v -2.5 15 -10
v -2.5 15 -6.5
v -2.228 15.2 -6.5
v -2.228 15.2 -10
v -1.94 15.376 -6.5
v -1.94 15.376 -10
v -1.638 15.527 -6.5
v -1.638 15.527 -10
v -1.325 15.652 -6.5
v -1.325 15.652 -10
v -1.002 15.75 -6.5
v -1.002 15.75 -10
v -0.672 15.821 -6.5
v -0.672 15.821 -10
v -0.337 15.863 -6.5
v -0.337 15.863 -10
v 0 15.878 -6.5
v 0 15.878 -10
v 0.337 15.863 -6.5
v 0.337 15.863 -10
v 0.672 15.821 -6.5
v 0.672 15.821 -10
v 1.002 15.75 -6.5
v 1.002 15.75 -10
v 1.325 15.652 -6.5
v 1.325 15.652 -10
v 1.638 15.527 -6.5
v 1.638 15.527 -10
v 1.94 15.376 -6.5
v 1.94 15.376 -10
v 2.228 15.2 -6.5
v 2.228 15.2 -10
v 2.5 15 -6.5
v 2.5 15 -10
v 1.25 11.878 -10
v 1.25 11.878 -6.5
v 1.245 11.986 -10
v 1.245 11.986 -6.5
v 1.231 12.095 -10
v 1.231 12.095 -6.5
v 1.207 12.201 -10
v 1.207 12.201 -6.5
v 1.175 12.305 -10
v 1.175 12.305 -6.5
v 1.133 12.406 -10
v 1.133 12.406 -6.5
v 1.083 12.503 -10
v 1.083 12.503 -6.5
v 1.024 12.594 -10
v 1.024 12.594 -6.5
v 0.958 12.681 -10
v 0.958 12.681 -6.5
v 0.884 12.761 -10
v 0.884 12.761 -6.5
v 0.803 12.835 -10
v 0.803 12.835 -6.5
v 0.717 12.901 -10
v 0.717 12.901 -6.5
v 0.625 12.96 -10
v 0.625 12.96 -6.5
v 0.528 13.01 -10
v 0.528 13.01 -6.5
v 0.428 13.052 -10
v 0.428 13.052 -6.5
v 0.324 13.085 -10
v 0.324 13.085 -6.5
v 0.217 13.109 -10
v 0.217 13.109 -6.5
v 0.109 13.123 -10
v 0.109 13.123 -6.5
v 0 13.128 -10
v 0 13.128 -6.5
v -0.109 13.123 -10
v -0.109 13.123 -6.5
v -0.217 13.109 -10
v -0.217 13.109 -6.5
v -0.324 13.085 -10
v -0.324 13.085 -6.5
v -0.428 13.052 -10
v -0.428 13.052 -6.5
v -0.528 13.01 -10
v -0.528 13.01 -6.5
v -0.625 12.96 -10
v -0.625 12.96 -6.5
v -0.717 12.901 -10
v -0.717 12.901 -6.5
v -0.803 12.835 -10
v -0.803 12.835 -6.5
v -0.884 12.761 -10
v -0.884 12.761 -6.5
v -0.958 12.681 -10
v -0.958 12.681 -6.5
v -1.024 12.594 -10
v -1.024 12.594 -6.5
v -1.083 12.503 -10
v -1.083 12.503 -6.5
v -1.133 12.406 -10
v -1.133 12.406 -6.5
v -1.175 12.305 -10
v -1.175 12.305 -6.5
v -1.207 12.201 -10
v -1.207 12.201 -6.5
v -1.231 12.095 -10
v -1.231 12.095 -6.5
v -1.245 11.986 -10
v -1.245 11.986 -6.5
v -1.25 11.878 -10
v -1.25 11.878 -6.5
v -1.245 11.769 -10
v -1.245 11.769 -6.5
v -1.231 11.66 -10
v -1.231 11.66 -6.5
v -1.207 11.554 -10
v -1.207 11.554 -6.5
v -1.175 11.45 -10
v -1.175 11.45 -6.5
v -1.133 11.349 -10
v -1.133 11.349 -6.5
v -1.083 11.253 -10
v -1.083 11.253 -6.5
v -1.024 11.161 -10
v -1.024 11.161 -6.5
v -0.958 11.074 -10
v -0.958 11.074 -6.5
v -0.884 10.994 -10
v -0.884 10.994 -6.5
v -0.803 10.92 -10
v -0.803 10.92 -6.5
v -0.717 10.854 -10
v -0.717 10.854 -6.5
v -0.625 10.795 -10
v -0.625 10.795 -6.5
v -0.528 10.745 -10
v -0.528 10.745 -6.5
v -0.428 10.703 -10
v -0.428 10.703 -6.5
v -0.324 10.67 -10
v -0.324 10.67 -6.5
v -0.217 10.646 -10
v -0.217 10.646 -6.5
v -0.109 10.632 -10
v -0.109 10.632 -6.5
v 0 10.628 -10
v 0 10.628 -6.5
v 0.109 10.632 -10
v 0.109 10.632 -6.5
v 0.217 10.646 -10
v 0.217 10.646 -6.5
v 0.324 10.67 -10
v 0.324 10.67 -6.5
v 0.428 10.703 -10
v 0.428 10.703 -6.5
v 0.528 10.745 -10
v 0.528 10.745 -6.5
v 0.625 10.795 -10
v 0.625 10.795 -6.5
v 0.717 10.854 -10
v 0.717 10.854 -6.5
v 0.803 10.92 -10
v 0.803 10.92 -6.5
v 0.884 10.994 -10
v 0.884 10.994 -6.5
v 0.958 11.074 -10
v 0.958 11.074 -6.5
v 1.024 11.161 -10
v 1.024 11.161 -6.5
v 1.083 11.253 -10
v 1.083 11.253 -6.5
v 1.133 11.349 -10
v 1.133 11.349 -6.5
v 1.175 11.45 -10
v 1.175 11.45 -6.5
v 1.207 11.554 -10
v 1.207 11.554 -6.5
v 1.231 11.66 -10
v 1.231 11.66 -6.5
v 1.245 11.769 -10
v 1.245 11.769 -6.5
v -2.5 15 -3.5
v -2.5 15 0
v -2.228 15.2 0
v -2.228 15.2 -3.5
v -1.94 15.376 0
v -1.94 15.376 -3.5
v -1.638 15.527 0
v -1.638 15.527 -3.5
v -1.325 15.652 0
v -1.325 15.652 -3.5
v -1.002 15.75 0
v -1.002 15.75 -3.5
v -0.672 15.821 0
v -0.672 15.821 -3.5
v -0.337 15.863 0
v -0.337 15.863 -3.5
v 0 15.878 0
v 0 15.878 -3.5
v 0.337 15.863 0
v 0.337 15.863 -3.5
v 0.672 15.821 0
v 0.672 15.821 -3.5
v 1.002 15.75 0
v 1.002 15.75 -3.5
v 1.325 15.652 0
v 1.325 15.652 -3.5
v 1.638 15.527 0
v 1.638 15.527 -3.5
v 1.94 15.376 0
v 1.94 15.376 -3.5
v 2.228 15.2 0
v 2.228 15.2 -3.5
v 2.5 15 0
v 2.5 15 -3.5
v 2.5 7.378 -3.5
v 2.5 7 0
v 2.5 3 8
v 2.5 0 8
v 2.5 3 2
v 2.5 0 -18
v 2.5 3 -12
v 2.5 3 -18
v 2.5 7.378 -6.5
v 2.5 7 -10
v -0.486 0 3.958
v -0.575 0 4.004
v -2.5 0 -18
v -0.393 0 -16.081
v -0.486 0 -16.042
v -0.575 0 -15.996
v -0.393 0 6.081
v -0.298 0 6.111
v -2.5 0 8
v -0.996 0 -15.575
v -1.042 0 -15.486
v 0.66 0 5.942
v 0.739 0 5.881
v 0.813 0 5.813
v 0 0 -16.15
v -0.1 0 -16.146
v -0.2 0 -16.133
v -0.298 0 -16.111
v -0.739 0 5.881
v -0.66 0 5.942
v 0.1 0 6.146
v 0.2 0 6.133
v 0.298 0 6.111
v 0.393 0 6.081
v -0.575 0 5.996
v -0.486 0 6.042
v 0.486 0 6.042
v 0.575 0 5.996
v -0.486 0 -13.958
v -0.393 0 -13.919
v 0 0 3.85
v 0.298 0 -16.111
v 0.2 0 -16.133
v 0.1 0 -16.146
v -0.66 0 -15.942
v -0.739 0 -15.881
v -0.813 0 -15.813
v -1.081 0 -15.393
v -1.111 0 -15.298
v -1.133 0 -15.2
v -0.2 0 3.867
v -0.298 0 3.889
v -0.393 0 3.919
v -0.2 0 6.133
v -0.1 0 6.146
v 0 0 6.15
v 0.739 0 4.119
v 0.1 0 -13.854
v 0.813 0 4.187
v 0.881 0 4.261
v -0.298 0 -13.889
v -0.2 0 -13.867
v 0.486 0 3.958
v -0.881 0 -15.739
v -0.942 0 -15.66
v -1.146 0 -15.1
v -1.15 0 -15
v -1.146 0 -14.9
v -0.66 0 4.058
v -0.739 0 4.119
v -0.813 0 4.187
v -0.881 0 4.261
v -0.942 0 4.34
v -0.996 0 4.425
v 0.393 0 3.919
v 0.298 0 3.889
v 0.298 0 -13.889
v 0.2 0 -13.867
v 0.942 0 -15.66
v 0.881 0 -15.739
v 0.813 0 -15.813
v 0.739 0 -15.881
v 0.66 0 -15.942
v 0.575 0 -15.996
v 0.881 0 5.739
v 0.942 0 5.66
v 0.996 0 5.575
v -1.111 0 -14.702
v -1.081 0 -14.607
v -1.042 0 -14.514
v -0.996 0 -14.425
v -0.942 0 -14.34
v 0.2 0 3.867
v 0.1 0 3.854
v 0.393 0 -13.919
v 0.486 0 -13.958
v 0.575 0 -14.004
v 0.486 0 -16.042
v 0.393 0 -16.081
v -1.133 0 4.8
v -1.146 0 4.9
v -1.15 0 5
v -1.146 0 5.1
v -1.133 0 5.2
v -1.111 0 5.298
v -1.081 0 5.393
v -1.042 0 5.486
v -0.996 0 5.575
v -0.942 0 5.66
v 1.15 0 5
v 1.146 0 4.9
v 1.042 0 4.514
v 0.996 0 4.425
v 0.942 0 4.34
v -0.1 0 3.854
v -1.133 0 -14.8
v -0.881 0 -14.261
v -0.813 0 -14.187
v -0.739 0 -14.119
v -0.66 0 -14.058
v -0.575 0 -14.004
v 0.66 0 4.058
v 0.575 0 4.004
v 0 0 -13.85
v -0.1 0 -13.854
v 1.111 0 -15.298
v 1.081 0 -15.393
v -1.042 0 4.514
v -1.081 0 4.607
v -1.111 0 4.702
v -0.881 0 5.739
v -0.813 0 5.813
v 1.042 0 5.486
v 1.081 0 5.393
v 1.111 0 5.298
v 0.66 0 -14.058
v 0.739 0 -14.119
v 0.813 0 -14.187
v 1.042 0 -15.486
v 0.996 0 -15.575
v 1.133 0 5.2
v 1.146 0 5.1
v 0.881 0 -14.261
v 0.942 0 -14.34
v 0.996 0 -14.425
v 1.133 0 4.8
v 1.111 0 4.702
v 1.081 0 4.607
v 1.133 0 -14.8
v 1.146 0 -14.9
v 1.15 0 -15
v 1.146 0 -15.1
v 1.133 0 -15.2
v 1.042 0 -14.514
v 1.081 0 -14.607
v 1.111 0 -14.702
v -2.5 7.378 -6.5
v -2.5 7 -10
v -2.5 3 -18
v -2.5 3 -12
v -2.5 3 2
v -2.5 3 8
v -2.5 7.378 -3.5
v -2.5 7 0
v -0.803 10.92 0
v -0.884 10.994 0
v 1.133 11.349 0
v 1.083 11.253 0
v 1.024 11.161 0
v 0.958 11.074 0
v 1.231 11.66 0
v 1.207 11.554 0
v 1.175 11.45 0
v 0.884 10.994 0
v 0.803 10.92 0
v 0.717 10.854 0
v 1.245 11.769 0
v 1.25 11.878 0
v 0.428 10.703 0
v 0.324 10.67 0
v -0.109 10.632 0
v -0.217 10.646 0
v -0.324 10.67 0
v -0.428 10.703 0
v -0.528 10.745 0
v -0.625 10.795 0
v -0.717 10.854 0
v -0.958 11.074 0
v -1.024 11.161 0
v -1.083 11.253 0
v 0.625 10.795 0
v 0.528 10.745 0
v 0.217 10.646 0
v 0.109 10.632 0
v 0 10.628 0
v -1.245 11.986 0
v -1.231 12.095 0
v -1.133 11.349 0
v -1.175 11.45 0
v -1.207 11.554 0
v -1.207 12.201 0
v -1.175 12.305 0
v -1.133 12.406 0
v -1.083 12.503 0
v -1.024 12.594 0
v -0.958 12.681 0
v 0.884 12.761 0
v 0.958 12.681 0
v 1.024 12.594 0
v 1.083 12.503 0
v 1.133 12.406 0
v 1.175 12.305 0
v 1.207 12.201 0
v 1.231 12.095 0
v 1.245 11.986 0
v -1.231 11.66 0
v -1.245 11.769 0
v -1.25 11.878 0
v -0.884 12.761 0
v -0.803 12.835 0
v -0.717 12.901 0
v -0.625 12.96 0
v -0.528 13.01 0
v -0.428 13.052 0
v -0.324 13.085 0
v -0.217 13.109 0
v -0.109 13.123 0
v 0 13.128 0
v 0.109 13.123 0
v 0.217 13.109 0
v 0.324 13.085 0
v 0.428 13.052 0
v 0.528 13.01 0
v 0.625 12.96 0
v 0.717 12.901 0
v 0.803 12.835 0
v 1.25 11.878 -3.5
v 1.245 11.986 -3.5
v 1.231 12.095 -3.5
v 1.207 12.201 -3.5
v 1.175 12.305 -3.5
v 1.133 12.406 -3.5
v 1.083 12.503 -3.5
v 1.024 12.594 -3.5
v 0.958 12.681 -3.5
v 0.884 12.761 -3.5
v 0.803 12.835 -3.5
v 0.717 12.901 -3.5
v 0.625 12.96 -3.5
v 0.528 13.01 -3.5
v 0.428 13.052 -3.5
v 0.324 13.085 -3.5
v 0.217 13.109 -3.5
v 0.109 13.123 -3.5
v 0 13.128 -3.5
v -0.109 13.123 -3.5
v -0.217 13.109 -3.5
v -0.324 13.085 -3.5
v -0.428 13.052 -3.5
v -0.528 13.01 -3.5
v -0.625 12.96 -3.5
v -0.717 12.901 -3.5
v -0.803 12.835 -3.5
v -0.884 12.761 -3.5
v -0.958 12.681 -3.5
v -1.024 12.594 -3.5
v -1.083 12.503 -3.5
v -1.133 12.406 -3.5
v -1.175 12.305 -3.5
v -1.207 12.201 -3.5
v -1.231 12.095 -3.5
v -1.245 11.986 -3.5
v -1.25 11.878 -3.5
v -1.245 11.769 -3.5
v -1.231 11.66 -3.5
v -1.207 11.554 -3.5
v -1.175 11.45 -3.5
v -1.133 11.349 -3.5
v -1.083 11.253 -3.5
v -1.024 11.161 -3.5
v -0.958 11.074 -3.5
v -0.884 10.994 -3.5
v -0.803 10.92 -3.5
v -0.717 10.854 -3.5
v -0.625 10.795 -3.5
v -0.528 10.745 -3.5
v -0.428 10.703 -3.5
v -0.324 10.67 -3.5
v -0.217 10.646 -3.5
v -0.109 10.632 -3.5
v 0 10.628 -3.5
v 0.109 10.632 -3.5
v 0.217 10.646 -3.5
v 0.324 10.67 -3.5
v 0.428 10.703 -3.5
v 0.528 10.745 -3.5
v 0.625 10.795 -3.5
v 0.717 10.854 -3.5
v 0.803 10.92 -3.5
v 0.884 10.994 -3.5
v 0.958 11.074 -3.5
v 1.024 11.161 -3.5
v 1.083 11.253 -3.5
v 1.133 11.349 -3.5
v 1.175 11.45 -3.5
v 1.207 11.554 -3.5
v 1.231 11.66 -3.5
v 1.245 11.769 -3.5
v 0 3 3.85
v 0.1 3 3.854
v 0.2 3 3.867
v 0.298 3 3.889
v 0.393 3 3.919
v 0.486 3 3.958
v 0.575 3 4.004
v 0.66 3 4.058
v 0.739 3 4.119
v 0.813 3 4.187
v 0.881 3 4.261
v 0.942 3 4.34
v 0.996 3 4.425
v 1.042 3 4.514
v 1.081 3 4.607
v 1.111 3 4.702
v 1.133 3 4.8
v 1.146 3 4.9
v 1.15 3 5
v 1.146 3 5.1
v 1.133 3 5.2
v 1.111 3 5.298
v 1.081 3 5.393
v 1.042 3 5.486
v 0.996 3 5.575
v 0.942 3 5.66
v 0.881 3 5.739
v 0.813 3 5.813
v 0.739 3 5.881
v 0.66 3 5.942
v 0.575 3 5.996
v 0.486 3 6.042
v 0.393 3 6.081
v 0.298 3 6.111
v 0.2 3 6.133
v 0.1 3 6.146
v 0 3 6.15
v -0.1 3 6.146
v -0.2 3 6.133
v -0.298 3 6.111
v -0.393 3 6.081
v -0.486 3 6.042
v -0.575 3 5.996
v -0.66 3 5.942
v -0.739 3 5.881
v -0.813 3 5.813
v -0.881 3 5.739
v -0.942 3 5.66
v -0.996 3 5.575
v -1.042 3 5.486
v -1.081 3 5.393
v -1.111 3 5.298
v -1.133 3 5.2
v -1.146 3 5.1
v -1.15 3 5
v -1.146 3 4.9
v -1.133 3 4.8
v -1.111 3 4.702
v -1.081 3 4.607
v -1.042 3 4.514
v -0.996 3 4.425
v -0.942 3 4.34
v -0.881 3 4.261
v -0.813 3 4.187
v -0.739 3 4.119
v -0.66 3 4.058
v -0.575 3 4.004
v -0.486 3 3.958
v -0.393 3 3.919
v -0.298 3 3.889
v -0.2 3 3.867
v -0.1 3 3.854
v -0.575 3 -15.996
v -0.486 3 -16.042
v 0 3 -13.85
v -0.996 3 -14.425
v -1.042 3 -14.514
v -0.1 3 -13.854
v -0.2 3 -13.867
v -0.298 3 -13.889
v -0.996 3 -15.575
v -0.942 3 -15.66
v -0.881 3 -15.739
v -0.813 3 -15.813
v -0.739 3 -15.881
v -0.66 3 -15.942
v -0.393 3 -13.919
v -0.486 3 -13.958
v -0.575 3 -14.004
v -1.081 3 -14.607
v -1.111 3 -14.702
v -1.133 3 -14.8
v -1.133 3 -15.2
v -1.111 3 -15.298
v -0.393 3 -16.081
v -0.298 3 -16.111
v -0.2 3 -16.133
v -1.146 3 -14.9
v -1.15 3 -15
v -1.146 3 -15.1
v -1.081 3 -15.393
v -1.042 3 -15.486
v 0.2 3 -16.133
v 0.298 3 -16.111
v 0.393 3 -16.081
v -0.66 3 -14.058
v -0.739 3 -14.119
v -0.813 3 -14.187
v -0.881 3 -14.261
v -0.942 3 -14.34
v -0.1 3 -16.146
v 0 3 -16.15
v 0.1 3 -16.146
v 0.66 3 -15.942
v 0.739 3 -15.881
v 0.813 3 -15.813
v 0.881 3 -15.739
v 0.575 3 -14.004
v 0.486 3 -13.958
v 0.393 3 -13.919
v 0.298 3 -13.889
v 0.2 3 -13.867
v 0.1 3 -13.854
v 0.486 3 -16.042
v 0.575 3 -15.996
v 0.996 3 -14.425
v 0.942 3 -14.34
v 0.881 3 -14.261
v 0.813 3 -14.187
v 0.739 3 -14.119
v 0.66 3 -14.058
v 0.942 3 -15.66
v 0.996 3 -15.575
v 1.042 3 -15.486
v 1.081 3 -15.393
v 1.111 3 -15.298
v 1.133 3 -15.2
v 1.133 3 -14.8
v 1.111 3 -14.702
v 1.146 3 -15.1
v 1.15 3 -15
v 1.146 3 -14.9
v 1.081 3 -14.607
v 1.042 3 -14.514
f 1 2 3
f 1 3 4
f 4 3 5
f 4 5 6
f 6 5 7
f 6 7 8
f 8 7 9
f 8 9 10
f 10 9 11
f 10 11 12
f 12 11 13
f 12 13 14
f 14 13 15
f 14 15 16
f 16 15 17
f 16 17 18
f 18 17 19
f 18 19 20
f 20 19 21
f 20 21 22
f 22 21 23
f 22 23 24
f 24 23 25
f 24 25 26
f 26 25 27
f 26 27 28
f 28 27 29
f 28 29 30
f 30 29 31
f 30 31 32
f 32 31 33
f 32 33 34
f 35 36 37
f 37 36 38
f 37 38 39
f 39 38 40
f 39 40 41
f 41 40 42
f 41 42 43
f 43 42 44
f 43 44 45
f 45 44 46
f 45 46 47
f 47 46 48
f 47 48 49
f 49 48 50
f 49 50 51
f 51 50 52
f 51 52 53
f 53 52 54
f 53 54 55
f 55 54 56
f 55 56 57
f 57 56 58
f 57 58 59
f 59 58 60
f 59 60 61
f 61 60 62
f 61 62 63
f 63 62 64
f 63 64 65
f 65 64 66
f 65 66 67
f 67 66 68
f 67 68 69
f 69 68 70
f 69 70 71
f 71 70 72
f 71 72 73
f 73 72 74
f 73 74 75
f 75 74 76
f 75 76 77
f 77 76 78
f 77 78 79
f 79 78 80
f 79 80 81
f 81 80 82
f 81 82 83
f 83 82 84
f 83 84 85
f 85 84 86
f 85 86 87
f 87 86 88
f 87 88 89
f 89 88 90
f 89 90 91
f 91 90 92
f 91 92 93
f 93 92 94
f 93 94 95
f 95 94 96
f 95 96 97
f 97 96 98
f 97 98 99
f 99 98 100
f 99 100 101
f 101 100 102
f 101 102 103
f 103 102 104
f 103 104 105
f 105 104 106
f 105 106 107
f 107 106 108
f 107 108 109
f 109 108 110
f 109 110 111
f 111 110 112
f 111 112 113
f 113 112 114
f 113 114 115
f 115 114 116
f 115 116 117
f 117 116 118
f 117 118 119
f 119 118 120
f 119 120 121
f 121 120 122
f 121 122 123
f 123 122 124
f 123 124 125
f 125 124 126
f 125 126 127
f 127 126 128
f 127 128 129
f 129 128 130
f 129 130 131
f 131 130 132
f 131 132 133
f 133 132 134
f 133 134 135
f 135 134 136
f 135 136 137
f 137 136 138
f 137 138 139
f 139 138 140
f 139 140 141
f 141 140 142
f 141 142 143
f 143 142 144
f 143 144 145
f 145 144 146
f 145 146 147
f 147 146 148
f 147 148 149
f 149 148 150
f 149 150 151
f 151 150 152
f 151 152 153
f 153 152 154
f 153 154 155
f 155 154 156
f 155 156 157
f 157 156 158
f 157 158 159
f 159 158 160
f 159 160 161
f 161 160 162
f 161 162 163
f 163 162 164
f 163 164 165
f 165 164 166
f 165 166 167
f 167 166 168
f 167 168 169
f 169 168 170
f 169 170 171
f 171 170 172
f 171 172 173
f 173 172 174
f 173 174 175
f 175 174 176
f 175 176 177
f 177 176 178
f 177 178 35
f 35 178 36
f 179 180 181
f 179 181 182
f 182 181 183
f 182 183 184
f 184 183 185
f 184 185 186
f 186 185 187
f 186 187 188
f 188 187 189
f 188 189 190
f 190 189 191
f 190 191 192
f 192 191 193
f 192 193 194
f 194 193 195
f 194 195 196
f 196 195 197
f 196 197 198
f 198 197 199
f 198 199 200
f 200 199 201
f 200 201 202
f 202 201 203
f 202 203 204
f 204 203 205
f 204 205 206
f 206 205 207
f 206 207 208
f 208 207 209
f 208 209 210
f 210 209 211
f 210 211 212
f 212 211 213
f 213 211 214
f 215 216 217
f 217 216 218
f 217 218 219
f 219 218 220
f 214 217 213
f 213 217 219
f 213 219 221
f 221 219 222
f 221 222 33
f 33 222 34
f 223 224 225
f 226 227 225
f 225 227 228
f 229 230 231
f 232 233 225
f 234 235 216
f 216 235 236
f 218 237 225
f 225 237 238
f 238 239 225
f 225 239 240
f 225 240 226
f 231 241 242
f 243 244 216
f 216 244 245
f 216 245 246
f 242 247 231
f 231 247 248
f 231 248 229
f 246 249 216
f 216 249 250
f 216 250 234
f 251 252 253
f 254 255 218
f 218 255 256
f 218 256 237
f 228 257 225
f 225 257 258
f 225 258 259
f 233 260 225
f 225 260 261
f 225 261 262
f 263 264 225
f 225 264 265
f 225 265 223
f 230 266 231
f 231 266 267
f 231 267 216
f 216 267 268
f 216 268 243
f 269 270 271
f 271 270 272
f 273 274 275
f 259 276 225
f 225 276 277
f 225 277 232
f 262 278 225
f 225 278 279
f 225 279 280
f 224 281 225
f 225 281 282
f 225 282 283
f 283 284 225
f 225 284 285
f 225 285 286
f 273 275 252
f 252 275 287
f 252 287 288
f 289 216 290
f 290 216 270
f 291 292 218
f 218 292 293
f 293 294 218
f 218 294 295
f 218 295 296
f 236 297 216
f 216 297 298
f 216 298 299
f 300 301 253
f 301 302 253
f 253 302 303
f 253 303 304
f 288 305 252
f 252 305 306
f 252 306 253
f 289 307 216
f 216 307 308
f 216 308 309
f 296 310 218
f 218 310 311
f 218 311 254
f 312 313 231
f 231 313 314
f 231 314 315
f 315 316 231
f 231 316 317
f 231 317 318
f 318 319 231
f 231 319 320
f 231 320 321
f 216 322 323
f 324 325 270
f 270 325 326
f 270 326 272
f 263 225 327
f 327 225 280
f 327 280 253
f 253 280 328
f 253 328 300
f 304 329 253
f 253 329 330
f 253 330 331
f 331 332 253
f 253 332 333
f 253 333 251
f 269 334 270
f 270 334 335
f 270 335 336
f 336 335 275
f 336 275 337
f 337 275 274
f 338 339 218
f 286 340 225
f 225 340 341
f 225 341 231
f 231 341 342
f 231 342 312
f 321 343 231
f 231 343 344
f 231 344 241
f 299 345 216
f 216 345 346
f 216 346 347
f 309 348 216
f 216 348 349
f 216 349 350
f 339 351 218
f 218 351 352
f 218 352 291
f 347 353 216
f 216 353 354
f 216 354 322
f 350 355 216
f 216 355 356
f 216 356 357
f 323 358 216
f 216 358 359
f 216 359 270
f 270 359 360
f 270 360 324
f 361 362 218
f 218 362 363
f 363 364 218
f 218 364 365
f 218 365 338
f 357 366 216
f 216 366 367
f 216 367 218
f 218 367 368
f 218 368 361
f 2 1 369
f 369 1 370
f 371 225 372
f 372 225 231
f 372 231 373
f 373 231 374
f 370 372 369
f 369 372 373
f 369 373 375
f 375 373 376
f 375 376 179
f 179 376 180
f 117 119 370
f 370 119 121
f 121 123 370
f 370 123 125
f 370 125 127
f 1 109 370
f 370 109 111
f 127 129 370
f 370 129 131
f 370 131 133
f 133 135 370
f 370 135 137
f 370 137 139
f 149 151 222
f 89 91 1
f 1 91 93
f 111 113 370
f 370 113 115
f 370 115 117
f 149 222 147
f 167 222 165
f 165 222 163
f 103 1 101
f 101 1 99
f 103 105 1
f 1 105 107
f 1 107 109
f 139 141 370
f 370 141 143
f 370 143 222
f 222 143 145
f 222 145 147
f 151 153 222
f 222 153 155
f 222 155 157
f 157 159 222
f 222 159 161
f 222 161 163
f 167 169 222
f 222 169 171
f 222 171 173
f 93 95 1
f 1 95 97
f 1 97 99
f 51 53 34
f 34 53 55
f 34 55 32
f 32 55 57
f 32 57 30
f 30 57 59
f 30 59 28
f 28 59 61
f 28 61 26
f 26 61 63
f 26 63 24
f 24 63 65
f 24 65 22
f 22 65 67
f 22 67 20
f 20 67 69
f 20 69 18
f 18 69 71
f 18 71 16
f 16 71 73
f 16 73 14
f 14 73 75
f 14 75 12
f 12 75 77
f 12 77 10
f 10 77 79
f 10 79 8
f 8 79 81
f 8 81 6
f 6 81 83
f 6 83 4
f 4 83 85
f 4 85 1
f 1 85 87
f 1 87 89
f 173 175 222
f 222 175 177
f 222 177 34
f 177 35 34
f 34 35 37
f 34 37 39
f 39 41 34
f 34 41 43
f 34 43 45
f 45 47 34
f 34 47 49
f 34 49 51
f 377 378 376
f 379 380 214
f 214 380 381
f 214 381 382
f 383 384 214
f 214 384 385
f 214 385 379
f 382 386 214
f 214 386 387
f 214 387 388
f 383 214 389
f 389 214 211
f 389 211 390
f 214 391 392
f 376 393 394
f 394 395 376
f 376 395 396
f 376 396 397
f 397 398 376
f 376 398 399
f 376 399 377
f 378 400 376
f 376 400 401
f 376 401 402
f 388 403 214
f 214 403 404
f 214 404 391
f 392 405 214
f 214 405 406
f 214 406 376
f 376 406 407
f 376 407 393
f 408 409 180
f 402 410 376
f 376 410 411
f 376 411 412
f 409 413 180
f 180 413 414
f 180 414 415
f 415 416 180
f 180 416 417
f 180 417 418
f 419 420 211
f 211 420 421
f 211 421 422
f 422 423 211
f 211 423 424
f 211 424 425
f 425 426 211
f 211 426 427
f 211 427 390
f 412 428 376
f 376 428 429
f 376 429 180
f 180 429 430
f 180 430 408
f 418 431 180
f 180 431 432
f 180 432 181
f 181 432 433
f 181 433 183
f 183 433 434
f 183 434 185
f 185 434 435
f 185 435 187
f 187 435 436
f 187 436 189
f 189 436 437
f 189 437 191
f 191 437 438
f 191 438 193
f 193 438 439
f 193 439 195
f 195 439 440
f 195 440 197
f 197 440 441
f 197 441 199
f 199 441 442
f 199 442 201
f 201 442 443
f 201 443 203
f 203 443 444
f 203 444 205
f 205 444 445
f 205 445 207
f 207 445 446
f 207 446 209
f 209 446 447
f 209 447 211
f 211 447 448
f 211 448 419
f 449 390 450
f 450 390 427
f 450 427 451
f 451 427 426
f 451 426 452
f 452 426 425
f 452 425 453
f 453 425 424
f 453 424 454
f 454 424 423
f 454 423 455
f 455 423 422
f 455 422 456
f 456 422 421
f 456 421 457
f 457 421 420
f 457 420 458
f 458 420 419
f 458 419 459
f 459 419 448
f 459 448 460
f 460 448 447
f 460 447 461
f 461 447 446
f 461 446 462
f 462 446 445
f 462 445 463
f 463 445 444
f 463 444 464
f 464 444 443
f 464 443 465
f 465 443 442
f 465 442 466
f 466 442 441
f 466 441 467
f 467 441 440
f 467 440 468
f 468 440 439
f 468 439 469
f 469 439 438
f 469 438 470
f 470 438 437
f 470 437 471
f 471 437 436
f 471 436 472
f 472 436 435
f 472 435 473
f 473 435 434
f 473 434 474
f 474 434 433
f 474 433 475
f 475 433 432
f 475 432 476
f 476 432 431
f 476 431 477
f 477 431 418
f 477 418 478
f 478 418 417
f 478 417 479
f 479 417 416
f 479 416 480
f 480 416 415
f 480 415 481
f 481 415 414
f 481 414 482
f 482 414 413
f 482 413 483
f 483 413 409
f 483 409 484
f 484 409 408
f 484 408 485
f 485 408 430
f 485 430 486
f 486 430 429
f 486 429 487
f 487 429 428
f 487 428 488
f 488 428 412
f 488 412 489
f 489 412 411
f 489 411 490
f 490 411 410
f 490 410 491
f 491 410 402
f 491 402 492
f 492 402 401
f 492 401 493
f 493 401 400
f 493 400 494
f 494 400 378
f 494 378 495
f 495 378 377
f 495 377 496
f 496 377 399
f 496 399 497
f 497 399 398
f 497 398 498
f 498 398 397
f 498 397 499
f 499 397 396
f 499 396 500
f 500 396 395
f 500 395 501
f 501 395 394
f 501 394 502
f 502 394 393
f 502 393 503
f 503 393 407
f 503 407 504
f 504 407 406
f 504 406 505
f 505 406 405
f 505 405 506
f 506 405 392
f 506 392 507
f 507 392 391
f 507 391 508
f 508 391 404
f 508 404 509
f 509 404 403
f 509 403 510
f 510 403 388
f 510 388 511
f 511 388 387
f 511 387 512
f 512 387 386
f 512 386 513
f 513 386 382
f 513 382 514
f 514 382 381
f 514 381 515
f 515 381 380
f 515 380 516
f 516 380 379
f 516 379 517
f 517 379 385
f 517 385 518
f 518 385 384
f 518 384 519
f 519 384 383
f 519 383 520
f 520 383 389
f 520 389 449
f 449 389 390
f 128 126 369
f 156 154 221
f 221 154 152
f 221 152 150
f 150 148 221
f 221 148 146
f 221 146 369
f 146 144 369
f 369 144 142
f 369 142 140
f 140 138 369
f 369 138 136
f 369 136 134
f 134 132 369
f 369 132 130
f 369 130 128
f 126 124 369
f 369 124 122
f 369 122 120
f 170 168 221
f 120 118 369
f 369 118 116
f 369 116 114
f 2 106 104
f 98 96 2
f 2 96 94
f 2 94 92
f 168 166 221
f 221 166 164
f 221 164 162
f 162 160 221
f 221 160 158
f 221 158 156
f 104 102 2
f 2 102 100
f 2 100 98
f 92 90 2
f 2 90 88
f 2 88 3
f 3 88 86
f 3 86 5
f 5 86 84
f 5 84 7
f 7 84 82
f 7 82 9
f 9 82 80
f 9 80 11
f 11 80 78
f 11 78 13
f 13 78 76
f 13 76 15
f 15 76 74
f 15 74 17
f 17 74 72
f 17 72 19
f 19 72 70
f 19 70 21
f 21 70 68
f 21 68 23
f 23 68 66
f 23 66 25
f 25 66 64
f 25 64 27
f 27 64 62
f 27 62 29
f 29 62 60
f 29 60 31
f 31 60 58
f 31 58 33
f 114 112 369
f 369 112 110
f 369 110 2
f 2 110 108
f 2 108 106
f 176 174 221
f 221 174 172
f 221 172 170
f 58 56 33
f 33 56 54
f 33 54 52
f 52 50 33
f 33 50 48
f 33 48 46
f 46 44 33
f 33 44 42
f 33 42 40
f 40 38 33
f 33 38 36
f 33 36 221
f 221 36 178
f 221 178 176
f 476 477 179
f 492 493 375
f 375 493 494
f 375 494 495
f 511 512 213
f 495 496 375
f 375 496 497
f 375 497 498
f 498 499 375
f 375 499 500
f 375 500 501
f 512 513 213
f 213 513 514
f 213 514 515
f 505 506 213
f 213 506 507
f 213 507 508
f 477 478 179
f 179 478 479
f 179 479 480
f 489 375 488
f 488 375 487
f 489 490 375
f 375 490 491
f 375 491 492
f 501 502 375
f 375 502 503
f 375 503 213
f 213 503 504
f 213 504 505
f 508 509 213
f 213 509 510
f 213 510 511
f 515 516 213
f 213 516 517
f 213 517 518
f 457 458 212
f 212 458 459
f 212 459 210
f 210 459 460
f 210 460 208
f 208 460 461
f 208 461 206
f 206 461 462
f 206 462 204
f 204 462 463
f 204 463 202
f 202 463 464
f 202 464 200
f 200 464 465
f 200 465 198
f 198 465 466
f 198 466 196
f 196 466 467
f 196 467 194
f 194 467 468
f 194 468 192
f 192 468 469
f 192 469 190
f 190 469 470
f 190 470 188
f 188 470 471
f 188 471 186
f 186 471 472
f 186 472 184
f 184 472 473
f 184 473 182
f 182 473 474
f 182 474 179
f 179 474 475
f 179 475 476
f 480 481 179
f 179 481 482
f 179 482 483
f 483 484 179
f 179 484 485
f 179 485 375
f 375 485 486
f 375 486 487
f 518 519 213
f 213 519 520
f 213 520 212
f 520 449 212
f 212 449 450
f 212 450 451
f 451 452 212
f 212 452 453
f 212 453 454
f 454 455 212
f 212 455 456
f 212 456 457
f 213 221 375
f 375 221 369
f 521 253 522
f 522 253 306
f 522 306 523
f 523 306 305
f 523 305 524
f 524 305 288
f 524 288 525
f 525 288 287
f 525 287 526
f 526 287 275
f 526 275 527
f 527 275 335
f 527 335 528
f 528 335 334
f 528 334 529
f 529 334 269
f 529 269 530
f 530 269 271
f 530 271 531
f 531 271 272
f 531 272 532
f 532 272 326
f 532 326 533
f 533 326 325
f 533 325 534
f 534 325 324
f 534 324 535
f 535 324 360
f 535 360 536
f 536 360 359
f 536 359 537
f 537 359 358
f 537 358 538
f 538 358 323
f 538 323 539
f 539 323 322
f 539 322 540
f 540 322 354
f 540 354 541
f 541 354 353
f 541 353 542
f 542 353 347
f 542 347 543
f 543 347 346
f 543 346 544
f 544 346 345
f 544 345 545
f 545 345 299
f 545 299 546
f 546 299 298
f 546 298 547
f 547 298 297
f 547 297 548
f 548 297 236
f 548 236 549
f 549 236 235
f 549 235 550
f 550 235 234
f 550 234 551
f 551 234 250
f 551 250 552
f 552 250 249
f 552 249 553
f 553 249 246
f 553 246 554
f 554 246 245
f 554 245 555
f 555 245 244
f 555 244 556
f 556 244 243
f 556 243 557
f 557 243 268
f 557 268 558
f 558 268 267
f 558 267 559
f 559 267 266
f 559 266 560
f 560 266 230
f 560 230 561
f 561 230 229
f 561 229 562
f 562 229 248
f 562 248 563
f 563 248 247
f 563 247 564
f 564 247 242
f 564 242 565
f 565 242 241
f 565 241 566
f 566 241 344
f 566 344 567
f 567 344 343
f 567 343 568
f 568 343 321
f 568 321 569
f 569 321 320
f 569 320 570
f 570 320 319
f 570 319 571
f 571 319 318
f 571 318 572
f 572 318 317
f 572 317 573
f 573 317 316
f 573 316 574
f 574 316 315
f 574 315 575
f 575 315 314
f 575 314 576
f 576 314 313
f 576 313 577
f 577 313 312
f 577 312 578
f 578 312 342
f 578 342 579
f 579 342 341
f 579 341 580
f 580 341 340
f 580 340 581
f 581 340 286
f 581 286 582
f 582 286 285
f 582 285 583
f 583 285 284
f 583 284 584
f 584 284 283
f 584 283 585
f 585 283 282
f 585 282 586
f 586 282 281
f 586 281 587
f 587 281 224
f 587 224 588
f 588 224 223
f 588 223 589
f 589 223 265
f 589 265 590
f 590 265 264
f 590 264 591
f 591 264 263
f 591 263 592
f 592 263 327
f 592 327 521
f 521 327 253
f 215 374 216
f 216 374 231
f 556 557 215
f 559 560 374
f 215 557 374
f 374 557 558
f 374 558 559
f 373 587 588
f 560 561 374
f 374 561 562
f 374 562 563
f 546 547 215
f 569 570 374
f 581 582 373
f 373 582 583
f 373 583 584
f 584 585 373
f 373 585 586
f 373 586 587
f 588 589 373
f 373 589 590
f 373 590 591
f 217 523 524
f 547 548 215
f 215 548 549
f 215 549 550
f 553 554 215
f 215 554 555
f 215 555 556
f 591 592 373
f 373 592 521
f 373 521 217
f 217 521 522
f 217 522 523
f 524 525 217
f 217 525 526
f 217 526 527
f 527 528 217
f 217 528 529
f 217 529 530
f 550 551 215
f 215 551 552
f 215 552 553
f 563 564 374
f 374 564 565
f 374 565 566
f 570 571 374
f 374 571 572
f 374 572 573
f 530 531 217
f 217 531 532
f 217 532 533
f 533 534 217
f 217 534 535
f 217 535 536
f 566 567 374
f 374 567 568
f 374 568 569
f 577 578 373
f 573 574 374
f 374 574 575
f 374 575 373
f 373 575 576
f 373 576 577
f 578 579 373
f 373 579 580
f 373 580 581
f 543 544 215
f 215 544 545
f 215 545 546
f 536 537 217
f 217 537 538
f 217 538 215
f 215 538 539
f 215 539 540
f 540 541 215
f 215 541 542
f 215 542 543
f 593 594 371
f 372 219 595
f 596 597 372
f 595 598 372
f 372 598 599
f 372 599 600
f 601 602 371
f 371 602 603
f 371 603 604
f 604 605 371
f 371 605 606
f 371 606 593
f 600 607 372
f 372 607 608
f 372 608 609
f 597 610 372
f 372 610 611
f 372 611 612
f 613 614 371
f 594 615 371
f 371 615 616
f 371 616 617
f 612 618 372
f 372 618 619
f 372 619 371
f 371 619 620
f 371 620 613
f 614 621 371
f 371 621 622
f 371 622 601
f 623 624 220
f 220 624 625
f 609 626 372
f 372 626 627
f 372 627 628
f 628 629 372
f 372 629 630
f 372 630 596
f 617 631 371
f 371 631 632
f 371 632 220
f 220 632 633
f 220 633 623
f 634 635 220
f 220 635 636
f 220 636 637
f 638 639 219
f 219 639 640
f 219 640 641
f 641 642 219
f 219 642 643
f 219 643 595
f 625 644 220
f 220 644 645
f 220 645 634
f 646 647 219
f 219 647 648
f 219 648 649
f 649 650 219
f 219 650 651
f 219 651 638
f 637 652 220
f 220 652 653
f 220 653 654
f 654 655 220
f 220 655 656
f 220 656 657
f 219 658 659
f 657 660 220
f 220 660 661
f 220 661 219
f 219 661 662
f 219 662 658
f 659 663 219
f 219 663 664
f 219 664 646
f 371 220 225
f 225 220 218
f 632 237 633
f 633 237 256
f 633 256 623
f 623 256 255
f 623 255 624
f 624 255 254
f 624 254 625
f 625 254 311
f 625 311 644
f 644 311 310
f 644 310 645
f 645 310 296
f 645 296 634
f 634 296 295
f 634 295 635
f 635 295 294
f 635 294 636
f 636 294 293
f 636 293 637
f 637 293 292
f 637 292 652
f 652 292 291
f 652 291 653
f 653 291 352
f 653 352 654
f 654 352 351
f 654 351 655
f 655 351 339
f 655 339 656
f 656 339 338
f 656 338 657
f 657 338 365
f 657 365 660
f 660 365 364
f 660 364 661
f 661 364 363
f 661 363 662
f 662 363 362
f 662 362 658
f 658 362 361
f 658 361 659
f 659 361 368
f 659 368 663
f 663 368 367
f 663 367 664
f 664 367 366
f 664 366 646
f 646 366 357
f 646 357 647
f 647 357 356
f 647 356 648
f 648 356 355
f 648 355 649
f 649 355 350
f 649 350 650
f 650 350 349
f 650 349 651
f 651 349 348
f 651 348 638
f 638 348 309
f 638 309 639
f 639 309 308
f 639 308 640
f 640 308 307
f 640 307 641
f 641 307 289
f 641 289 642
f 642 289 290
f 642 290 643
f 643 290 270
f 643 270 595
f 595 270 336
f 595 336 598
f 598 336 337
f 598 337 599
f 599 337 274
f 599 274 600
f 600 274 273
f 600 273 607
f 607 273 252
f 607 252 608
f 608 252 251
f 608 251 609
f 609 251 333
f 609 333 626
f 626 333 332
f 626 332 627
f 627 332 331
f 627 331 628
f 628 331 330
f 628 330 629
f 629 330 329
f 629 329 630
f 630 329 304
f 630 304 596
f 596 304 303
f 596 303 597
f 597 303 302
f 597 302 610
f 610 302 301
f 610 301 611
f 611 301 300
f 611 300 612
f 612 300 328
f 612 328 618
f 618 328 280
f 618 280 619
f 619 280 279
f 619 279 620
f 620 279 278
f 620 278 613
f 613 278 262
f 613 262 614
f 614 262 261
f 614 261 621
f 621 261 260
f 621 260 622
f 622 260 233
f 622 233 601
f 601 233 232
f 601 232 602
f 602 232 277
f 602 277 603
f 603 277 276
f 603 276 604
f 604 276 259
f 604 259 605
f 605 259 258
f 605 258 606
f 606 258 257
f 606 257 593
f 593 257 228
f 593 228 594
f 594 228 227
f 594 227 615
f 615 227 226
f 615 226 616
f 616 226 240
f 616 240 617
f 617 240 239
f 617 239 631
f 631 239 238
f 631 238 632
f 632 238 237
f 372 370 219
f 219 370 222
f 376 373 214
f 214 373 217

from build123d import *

# Parameters (mm, degrees)
SKETCH1_R           = 1.25
BOSS_EXTRUDE1_DEPTH = 10
SKETCH2_W           = 3
SKETCH2_H           = 8.5
CUT_EXTRUDE1_DEPTH  = 6
SKETCH3_W           = 5
SKETCH3_H           = 26
SKETCH3_R           = 1.15
BOSS_EXTRUDE2_DEPTH = 3
CHAMFER1_SIZE       = 2
CHAMFER1_SIZE2      = 4
CHAMFER2_SIZE       = 4
CHAMFER2_SIZE2      = 2


with BuildPart() as part:
    # Sketch1 → Boss-Extrude1 (new body)
    with BuildSketch(Plane.XY):
        with BuildLine():
            Line((2.5, 15), (2.5, 0))
            Line((2.5, 0), (-2.5, 0))
            Line((-2.5, 0), (-2.5, 15))
            ThreePointArc((-2.5, 15), (0, 15.877501001), (2.5, 15))
        make_face()
        with Locations((0, 11.877501001)):
            Circle(SKETCH1_R, mode=Mode.SUBTRACT)
    extrude(amount=-BOSS_EXTRUDE1_DEPTH)

    # Sketch2 → Cut-Extrude1 (cut, through all)
    with BuildSketch(Plane.ZY.offset(2.5)):
        with Locations((-5, 11.627501001)):
            Rectangle(SKETCH2_W, SKETCH2_H)
    extrude(amount=-CUT_EXTRUDE1_DEPTH, mode=Mode.SUBTRACT)

    # Sketch3 → Boss-Extrude2 (add)
    with BuildSketch(Plane.XZ):
        with Locations((0, -5)):
            Rectangle(SKETCH3_W, SKETCH3_H)
        with Locations((0, 5)):
            Circle(SKETCH3_R, mode=Mode.SUBTRACT)
        with Locations((0, -15)):
            Circle(SKETCH3_R, mode=Mode.SUBTRACT)
    extrude(amount=-BOSS_EXTRUDE2_DEPTH)

    # Chamfer1
    chamfer1_edges = [part.edges().sort_by_distance(p)[0] for p in [
        (0, 3, -10),
    ]]
    chamfer1_side = [part.faces().sort_by_distance(p)[0] for p in [
        (-2.405660189, 3, -14),
    ]]
    chamfer(chamfer1_edges, length=CHAMFER1_SIZE, length2=CHAMFER1_SIZE2, reference=chamfer1_side[0])

    # Chamfer2
    chamfer2_edges = [part.edges().sort_by_distance(p)[0] for p in [
        (0, 3, 0),
    ]]
    chamfer2_side = [part.faces().sort_by_distance(p)[0] for p in [
        (0, 9.084568634, 0),
    ]]
    chamfer(chamfer2_edges, length=CHAMFER2_SIZE, length2=CHAMFER2_SIZE2, reference=chamfer2_side[0])


solid = part.part
